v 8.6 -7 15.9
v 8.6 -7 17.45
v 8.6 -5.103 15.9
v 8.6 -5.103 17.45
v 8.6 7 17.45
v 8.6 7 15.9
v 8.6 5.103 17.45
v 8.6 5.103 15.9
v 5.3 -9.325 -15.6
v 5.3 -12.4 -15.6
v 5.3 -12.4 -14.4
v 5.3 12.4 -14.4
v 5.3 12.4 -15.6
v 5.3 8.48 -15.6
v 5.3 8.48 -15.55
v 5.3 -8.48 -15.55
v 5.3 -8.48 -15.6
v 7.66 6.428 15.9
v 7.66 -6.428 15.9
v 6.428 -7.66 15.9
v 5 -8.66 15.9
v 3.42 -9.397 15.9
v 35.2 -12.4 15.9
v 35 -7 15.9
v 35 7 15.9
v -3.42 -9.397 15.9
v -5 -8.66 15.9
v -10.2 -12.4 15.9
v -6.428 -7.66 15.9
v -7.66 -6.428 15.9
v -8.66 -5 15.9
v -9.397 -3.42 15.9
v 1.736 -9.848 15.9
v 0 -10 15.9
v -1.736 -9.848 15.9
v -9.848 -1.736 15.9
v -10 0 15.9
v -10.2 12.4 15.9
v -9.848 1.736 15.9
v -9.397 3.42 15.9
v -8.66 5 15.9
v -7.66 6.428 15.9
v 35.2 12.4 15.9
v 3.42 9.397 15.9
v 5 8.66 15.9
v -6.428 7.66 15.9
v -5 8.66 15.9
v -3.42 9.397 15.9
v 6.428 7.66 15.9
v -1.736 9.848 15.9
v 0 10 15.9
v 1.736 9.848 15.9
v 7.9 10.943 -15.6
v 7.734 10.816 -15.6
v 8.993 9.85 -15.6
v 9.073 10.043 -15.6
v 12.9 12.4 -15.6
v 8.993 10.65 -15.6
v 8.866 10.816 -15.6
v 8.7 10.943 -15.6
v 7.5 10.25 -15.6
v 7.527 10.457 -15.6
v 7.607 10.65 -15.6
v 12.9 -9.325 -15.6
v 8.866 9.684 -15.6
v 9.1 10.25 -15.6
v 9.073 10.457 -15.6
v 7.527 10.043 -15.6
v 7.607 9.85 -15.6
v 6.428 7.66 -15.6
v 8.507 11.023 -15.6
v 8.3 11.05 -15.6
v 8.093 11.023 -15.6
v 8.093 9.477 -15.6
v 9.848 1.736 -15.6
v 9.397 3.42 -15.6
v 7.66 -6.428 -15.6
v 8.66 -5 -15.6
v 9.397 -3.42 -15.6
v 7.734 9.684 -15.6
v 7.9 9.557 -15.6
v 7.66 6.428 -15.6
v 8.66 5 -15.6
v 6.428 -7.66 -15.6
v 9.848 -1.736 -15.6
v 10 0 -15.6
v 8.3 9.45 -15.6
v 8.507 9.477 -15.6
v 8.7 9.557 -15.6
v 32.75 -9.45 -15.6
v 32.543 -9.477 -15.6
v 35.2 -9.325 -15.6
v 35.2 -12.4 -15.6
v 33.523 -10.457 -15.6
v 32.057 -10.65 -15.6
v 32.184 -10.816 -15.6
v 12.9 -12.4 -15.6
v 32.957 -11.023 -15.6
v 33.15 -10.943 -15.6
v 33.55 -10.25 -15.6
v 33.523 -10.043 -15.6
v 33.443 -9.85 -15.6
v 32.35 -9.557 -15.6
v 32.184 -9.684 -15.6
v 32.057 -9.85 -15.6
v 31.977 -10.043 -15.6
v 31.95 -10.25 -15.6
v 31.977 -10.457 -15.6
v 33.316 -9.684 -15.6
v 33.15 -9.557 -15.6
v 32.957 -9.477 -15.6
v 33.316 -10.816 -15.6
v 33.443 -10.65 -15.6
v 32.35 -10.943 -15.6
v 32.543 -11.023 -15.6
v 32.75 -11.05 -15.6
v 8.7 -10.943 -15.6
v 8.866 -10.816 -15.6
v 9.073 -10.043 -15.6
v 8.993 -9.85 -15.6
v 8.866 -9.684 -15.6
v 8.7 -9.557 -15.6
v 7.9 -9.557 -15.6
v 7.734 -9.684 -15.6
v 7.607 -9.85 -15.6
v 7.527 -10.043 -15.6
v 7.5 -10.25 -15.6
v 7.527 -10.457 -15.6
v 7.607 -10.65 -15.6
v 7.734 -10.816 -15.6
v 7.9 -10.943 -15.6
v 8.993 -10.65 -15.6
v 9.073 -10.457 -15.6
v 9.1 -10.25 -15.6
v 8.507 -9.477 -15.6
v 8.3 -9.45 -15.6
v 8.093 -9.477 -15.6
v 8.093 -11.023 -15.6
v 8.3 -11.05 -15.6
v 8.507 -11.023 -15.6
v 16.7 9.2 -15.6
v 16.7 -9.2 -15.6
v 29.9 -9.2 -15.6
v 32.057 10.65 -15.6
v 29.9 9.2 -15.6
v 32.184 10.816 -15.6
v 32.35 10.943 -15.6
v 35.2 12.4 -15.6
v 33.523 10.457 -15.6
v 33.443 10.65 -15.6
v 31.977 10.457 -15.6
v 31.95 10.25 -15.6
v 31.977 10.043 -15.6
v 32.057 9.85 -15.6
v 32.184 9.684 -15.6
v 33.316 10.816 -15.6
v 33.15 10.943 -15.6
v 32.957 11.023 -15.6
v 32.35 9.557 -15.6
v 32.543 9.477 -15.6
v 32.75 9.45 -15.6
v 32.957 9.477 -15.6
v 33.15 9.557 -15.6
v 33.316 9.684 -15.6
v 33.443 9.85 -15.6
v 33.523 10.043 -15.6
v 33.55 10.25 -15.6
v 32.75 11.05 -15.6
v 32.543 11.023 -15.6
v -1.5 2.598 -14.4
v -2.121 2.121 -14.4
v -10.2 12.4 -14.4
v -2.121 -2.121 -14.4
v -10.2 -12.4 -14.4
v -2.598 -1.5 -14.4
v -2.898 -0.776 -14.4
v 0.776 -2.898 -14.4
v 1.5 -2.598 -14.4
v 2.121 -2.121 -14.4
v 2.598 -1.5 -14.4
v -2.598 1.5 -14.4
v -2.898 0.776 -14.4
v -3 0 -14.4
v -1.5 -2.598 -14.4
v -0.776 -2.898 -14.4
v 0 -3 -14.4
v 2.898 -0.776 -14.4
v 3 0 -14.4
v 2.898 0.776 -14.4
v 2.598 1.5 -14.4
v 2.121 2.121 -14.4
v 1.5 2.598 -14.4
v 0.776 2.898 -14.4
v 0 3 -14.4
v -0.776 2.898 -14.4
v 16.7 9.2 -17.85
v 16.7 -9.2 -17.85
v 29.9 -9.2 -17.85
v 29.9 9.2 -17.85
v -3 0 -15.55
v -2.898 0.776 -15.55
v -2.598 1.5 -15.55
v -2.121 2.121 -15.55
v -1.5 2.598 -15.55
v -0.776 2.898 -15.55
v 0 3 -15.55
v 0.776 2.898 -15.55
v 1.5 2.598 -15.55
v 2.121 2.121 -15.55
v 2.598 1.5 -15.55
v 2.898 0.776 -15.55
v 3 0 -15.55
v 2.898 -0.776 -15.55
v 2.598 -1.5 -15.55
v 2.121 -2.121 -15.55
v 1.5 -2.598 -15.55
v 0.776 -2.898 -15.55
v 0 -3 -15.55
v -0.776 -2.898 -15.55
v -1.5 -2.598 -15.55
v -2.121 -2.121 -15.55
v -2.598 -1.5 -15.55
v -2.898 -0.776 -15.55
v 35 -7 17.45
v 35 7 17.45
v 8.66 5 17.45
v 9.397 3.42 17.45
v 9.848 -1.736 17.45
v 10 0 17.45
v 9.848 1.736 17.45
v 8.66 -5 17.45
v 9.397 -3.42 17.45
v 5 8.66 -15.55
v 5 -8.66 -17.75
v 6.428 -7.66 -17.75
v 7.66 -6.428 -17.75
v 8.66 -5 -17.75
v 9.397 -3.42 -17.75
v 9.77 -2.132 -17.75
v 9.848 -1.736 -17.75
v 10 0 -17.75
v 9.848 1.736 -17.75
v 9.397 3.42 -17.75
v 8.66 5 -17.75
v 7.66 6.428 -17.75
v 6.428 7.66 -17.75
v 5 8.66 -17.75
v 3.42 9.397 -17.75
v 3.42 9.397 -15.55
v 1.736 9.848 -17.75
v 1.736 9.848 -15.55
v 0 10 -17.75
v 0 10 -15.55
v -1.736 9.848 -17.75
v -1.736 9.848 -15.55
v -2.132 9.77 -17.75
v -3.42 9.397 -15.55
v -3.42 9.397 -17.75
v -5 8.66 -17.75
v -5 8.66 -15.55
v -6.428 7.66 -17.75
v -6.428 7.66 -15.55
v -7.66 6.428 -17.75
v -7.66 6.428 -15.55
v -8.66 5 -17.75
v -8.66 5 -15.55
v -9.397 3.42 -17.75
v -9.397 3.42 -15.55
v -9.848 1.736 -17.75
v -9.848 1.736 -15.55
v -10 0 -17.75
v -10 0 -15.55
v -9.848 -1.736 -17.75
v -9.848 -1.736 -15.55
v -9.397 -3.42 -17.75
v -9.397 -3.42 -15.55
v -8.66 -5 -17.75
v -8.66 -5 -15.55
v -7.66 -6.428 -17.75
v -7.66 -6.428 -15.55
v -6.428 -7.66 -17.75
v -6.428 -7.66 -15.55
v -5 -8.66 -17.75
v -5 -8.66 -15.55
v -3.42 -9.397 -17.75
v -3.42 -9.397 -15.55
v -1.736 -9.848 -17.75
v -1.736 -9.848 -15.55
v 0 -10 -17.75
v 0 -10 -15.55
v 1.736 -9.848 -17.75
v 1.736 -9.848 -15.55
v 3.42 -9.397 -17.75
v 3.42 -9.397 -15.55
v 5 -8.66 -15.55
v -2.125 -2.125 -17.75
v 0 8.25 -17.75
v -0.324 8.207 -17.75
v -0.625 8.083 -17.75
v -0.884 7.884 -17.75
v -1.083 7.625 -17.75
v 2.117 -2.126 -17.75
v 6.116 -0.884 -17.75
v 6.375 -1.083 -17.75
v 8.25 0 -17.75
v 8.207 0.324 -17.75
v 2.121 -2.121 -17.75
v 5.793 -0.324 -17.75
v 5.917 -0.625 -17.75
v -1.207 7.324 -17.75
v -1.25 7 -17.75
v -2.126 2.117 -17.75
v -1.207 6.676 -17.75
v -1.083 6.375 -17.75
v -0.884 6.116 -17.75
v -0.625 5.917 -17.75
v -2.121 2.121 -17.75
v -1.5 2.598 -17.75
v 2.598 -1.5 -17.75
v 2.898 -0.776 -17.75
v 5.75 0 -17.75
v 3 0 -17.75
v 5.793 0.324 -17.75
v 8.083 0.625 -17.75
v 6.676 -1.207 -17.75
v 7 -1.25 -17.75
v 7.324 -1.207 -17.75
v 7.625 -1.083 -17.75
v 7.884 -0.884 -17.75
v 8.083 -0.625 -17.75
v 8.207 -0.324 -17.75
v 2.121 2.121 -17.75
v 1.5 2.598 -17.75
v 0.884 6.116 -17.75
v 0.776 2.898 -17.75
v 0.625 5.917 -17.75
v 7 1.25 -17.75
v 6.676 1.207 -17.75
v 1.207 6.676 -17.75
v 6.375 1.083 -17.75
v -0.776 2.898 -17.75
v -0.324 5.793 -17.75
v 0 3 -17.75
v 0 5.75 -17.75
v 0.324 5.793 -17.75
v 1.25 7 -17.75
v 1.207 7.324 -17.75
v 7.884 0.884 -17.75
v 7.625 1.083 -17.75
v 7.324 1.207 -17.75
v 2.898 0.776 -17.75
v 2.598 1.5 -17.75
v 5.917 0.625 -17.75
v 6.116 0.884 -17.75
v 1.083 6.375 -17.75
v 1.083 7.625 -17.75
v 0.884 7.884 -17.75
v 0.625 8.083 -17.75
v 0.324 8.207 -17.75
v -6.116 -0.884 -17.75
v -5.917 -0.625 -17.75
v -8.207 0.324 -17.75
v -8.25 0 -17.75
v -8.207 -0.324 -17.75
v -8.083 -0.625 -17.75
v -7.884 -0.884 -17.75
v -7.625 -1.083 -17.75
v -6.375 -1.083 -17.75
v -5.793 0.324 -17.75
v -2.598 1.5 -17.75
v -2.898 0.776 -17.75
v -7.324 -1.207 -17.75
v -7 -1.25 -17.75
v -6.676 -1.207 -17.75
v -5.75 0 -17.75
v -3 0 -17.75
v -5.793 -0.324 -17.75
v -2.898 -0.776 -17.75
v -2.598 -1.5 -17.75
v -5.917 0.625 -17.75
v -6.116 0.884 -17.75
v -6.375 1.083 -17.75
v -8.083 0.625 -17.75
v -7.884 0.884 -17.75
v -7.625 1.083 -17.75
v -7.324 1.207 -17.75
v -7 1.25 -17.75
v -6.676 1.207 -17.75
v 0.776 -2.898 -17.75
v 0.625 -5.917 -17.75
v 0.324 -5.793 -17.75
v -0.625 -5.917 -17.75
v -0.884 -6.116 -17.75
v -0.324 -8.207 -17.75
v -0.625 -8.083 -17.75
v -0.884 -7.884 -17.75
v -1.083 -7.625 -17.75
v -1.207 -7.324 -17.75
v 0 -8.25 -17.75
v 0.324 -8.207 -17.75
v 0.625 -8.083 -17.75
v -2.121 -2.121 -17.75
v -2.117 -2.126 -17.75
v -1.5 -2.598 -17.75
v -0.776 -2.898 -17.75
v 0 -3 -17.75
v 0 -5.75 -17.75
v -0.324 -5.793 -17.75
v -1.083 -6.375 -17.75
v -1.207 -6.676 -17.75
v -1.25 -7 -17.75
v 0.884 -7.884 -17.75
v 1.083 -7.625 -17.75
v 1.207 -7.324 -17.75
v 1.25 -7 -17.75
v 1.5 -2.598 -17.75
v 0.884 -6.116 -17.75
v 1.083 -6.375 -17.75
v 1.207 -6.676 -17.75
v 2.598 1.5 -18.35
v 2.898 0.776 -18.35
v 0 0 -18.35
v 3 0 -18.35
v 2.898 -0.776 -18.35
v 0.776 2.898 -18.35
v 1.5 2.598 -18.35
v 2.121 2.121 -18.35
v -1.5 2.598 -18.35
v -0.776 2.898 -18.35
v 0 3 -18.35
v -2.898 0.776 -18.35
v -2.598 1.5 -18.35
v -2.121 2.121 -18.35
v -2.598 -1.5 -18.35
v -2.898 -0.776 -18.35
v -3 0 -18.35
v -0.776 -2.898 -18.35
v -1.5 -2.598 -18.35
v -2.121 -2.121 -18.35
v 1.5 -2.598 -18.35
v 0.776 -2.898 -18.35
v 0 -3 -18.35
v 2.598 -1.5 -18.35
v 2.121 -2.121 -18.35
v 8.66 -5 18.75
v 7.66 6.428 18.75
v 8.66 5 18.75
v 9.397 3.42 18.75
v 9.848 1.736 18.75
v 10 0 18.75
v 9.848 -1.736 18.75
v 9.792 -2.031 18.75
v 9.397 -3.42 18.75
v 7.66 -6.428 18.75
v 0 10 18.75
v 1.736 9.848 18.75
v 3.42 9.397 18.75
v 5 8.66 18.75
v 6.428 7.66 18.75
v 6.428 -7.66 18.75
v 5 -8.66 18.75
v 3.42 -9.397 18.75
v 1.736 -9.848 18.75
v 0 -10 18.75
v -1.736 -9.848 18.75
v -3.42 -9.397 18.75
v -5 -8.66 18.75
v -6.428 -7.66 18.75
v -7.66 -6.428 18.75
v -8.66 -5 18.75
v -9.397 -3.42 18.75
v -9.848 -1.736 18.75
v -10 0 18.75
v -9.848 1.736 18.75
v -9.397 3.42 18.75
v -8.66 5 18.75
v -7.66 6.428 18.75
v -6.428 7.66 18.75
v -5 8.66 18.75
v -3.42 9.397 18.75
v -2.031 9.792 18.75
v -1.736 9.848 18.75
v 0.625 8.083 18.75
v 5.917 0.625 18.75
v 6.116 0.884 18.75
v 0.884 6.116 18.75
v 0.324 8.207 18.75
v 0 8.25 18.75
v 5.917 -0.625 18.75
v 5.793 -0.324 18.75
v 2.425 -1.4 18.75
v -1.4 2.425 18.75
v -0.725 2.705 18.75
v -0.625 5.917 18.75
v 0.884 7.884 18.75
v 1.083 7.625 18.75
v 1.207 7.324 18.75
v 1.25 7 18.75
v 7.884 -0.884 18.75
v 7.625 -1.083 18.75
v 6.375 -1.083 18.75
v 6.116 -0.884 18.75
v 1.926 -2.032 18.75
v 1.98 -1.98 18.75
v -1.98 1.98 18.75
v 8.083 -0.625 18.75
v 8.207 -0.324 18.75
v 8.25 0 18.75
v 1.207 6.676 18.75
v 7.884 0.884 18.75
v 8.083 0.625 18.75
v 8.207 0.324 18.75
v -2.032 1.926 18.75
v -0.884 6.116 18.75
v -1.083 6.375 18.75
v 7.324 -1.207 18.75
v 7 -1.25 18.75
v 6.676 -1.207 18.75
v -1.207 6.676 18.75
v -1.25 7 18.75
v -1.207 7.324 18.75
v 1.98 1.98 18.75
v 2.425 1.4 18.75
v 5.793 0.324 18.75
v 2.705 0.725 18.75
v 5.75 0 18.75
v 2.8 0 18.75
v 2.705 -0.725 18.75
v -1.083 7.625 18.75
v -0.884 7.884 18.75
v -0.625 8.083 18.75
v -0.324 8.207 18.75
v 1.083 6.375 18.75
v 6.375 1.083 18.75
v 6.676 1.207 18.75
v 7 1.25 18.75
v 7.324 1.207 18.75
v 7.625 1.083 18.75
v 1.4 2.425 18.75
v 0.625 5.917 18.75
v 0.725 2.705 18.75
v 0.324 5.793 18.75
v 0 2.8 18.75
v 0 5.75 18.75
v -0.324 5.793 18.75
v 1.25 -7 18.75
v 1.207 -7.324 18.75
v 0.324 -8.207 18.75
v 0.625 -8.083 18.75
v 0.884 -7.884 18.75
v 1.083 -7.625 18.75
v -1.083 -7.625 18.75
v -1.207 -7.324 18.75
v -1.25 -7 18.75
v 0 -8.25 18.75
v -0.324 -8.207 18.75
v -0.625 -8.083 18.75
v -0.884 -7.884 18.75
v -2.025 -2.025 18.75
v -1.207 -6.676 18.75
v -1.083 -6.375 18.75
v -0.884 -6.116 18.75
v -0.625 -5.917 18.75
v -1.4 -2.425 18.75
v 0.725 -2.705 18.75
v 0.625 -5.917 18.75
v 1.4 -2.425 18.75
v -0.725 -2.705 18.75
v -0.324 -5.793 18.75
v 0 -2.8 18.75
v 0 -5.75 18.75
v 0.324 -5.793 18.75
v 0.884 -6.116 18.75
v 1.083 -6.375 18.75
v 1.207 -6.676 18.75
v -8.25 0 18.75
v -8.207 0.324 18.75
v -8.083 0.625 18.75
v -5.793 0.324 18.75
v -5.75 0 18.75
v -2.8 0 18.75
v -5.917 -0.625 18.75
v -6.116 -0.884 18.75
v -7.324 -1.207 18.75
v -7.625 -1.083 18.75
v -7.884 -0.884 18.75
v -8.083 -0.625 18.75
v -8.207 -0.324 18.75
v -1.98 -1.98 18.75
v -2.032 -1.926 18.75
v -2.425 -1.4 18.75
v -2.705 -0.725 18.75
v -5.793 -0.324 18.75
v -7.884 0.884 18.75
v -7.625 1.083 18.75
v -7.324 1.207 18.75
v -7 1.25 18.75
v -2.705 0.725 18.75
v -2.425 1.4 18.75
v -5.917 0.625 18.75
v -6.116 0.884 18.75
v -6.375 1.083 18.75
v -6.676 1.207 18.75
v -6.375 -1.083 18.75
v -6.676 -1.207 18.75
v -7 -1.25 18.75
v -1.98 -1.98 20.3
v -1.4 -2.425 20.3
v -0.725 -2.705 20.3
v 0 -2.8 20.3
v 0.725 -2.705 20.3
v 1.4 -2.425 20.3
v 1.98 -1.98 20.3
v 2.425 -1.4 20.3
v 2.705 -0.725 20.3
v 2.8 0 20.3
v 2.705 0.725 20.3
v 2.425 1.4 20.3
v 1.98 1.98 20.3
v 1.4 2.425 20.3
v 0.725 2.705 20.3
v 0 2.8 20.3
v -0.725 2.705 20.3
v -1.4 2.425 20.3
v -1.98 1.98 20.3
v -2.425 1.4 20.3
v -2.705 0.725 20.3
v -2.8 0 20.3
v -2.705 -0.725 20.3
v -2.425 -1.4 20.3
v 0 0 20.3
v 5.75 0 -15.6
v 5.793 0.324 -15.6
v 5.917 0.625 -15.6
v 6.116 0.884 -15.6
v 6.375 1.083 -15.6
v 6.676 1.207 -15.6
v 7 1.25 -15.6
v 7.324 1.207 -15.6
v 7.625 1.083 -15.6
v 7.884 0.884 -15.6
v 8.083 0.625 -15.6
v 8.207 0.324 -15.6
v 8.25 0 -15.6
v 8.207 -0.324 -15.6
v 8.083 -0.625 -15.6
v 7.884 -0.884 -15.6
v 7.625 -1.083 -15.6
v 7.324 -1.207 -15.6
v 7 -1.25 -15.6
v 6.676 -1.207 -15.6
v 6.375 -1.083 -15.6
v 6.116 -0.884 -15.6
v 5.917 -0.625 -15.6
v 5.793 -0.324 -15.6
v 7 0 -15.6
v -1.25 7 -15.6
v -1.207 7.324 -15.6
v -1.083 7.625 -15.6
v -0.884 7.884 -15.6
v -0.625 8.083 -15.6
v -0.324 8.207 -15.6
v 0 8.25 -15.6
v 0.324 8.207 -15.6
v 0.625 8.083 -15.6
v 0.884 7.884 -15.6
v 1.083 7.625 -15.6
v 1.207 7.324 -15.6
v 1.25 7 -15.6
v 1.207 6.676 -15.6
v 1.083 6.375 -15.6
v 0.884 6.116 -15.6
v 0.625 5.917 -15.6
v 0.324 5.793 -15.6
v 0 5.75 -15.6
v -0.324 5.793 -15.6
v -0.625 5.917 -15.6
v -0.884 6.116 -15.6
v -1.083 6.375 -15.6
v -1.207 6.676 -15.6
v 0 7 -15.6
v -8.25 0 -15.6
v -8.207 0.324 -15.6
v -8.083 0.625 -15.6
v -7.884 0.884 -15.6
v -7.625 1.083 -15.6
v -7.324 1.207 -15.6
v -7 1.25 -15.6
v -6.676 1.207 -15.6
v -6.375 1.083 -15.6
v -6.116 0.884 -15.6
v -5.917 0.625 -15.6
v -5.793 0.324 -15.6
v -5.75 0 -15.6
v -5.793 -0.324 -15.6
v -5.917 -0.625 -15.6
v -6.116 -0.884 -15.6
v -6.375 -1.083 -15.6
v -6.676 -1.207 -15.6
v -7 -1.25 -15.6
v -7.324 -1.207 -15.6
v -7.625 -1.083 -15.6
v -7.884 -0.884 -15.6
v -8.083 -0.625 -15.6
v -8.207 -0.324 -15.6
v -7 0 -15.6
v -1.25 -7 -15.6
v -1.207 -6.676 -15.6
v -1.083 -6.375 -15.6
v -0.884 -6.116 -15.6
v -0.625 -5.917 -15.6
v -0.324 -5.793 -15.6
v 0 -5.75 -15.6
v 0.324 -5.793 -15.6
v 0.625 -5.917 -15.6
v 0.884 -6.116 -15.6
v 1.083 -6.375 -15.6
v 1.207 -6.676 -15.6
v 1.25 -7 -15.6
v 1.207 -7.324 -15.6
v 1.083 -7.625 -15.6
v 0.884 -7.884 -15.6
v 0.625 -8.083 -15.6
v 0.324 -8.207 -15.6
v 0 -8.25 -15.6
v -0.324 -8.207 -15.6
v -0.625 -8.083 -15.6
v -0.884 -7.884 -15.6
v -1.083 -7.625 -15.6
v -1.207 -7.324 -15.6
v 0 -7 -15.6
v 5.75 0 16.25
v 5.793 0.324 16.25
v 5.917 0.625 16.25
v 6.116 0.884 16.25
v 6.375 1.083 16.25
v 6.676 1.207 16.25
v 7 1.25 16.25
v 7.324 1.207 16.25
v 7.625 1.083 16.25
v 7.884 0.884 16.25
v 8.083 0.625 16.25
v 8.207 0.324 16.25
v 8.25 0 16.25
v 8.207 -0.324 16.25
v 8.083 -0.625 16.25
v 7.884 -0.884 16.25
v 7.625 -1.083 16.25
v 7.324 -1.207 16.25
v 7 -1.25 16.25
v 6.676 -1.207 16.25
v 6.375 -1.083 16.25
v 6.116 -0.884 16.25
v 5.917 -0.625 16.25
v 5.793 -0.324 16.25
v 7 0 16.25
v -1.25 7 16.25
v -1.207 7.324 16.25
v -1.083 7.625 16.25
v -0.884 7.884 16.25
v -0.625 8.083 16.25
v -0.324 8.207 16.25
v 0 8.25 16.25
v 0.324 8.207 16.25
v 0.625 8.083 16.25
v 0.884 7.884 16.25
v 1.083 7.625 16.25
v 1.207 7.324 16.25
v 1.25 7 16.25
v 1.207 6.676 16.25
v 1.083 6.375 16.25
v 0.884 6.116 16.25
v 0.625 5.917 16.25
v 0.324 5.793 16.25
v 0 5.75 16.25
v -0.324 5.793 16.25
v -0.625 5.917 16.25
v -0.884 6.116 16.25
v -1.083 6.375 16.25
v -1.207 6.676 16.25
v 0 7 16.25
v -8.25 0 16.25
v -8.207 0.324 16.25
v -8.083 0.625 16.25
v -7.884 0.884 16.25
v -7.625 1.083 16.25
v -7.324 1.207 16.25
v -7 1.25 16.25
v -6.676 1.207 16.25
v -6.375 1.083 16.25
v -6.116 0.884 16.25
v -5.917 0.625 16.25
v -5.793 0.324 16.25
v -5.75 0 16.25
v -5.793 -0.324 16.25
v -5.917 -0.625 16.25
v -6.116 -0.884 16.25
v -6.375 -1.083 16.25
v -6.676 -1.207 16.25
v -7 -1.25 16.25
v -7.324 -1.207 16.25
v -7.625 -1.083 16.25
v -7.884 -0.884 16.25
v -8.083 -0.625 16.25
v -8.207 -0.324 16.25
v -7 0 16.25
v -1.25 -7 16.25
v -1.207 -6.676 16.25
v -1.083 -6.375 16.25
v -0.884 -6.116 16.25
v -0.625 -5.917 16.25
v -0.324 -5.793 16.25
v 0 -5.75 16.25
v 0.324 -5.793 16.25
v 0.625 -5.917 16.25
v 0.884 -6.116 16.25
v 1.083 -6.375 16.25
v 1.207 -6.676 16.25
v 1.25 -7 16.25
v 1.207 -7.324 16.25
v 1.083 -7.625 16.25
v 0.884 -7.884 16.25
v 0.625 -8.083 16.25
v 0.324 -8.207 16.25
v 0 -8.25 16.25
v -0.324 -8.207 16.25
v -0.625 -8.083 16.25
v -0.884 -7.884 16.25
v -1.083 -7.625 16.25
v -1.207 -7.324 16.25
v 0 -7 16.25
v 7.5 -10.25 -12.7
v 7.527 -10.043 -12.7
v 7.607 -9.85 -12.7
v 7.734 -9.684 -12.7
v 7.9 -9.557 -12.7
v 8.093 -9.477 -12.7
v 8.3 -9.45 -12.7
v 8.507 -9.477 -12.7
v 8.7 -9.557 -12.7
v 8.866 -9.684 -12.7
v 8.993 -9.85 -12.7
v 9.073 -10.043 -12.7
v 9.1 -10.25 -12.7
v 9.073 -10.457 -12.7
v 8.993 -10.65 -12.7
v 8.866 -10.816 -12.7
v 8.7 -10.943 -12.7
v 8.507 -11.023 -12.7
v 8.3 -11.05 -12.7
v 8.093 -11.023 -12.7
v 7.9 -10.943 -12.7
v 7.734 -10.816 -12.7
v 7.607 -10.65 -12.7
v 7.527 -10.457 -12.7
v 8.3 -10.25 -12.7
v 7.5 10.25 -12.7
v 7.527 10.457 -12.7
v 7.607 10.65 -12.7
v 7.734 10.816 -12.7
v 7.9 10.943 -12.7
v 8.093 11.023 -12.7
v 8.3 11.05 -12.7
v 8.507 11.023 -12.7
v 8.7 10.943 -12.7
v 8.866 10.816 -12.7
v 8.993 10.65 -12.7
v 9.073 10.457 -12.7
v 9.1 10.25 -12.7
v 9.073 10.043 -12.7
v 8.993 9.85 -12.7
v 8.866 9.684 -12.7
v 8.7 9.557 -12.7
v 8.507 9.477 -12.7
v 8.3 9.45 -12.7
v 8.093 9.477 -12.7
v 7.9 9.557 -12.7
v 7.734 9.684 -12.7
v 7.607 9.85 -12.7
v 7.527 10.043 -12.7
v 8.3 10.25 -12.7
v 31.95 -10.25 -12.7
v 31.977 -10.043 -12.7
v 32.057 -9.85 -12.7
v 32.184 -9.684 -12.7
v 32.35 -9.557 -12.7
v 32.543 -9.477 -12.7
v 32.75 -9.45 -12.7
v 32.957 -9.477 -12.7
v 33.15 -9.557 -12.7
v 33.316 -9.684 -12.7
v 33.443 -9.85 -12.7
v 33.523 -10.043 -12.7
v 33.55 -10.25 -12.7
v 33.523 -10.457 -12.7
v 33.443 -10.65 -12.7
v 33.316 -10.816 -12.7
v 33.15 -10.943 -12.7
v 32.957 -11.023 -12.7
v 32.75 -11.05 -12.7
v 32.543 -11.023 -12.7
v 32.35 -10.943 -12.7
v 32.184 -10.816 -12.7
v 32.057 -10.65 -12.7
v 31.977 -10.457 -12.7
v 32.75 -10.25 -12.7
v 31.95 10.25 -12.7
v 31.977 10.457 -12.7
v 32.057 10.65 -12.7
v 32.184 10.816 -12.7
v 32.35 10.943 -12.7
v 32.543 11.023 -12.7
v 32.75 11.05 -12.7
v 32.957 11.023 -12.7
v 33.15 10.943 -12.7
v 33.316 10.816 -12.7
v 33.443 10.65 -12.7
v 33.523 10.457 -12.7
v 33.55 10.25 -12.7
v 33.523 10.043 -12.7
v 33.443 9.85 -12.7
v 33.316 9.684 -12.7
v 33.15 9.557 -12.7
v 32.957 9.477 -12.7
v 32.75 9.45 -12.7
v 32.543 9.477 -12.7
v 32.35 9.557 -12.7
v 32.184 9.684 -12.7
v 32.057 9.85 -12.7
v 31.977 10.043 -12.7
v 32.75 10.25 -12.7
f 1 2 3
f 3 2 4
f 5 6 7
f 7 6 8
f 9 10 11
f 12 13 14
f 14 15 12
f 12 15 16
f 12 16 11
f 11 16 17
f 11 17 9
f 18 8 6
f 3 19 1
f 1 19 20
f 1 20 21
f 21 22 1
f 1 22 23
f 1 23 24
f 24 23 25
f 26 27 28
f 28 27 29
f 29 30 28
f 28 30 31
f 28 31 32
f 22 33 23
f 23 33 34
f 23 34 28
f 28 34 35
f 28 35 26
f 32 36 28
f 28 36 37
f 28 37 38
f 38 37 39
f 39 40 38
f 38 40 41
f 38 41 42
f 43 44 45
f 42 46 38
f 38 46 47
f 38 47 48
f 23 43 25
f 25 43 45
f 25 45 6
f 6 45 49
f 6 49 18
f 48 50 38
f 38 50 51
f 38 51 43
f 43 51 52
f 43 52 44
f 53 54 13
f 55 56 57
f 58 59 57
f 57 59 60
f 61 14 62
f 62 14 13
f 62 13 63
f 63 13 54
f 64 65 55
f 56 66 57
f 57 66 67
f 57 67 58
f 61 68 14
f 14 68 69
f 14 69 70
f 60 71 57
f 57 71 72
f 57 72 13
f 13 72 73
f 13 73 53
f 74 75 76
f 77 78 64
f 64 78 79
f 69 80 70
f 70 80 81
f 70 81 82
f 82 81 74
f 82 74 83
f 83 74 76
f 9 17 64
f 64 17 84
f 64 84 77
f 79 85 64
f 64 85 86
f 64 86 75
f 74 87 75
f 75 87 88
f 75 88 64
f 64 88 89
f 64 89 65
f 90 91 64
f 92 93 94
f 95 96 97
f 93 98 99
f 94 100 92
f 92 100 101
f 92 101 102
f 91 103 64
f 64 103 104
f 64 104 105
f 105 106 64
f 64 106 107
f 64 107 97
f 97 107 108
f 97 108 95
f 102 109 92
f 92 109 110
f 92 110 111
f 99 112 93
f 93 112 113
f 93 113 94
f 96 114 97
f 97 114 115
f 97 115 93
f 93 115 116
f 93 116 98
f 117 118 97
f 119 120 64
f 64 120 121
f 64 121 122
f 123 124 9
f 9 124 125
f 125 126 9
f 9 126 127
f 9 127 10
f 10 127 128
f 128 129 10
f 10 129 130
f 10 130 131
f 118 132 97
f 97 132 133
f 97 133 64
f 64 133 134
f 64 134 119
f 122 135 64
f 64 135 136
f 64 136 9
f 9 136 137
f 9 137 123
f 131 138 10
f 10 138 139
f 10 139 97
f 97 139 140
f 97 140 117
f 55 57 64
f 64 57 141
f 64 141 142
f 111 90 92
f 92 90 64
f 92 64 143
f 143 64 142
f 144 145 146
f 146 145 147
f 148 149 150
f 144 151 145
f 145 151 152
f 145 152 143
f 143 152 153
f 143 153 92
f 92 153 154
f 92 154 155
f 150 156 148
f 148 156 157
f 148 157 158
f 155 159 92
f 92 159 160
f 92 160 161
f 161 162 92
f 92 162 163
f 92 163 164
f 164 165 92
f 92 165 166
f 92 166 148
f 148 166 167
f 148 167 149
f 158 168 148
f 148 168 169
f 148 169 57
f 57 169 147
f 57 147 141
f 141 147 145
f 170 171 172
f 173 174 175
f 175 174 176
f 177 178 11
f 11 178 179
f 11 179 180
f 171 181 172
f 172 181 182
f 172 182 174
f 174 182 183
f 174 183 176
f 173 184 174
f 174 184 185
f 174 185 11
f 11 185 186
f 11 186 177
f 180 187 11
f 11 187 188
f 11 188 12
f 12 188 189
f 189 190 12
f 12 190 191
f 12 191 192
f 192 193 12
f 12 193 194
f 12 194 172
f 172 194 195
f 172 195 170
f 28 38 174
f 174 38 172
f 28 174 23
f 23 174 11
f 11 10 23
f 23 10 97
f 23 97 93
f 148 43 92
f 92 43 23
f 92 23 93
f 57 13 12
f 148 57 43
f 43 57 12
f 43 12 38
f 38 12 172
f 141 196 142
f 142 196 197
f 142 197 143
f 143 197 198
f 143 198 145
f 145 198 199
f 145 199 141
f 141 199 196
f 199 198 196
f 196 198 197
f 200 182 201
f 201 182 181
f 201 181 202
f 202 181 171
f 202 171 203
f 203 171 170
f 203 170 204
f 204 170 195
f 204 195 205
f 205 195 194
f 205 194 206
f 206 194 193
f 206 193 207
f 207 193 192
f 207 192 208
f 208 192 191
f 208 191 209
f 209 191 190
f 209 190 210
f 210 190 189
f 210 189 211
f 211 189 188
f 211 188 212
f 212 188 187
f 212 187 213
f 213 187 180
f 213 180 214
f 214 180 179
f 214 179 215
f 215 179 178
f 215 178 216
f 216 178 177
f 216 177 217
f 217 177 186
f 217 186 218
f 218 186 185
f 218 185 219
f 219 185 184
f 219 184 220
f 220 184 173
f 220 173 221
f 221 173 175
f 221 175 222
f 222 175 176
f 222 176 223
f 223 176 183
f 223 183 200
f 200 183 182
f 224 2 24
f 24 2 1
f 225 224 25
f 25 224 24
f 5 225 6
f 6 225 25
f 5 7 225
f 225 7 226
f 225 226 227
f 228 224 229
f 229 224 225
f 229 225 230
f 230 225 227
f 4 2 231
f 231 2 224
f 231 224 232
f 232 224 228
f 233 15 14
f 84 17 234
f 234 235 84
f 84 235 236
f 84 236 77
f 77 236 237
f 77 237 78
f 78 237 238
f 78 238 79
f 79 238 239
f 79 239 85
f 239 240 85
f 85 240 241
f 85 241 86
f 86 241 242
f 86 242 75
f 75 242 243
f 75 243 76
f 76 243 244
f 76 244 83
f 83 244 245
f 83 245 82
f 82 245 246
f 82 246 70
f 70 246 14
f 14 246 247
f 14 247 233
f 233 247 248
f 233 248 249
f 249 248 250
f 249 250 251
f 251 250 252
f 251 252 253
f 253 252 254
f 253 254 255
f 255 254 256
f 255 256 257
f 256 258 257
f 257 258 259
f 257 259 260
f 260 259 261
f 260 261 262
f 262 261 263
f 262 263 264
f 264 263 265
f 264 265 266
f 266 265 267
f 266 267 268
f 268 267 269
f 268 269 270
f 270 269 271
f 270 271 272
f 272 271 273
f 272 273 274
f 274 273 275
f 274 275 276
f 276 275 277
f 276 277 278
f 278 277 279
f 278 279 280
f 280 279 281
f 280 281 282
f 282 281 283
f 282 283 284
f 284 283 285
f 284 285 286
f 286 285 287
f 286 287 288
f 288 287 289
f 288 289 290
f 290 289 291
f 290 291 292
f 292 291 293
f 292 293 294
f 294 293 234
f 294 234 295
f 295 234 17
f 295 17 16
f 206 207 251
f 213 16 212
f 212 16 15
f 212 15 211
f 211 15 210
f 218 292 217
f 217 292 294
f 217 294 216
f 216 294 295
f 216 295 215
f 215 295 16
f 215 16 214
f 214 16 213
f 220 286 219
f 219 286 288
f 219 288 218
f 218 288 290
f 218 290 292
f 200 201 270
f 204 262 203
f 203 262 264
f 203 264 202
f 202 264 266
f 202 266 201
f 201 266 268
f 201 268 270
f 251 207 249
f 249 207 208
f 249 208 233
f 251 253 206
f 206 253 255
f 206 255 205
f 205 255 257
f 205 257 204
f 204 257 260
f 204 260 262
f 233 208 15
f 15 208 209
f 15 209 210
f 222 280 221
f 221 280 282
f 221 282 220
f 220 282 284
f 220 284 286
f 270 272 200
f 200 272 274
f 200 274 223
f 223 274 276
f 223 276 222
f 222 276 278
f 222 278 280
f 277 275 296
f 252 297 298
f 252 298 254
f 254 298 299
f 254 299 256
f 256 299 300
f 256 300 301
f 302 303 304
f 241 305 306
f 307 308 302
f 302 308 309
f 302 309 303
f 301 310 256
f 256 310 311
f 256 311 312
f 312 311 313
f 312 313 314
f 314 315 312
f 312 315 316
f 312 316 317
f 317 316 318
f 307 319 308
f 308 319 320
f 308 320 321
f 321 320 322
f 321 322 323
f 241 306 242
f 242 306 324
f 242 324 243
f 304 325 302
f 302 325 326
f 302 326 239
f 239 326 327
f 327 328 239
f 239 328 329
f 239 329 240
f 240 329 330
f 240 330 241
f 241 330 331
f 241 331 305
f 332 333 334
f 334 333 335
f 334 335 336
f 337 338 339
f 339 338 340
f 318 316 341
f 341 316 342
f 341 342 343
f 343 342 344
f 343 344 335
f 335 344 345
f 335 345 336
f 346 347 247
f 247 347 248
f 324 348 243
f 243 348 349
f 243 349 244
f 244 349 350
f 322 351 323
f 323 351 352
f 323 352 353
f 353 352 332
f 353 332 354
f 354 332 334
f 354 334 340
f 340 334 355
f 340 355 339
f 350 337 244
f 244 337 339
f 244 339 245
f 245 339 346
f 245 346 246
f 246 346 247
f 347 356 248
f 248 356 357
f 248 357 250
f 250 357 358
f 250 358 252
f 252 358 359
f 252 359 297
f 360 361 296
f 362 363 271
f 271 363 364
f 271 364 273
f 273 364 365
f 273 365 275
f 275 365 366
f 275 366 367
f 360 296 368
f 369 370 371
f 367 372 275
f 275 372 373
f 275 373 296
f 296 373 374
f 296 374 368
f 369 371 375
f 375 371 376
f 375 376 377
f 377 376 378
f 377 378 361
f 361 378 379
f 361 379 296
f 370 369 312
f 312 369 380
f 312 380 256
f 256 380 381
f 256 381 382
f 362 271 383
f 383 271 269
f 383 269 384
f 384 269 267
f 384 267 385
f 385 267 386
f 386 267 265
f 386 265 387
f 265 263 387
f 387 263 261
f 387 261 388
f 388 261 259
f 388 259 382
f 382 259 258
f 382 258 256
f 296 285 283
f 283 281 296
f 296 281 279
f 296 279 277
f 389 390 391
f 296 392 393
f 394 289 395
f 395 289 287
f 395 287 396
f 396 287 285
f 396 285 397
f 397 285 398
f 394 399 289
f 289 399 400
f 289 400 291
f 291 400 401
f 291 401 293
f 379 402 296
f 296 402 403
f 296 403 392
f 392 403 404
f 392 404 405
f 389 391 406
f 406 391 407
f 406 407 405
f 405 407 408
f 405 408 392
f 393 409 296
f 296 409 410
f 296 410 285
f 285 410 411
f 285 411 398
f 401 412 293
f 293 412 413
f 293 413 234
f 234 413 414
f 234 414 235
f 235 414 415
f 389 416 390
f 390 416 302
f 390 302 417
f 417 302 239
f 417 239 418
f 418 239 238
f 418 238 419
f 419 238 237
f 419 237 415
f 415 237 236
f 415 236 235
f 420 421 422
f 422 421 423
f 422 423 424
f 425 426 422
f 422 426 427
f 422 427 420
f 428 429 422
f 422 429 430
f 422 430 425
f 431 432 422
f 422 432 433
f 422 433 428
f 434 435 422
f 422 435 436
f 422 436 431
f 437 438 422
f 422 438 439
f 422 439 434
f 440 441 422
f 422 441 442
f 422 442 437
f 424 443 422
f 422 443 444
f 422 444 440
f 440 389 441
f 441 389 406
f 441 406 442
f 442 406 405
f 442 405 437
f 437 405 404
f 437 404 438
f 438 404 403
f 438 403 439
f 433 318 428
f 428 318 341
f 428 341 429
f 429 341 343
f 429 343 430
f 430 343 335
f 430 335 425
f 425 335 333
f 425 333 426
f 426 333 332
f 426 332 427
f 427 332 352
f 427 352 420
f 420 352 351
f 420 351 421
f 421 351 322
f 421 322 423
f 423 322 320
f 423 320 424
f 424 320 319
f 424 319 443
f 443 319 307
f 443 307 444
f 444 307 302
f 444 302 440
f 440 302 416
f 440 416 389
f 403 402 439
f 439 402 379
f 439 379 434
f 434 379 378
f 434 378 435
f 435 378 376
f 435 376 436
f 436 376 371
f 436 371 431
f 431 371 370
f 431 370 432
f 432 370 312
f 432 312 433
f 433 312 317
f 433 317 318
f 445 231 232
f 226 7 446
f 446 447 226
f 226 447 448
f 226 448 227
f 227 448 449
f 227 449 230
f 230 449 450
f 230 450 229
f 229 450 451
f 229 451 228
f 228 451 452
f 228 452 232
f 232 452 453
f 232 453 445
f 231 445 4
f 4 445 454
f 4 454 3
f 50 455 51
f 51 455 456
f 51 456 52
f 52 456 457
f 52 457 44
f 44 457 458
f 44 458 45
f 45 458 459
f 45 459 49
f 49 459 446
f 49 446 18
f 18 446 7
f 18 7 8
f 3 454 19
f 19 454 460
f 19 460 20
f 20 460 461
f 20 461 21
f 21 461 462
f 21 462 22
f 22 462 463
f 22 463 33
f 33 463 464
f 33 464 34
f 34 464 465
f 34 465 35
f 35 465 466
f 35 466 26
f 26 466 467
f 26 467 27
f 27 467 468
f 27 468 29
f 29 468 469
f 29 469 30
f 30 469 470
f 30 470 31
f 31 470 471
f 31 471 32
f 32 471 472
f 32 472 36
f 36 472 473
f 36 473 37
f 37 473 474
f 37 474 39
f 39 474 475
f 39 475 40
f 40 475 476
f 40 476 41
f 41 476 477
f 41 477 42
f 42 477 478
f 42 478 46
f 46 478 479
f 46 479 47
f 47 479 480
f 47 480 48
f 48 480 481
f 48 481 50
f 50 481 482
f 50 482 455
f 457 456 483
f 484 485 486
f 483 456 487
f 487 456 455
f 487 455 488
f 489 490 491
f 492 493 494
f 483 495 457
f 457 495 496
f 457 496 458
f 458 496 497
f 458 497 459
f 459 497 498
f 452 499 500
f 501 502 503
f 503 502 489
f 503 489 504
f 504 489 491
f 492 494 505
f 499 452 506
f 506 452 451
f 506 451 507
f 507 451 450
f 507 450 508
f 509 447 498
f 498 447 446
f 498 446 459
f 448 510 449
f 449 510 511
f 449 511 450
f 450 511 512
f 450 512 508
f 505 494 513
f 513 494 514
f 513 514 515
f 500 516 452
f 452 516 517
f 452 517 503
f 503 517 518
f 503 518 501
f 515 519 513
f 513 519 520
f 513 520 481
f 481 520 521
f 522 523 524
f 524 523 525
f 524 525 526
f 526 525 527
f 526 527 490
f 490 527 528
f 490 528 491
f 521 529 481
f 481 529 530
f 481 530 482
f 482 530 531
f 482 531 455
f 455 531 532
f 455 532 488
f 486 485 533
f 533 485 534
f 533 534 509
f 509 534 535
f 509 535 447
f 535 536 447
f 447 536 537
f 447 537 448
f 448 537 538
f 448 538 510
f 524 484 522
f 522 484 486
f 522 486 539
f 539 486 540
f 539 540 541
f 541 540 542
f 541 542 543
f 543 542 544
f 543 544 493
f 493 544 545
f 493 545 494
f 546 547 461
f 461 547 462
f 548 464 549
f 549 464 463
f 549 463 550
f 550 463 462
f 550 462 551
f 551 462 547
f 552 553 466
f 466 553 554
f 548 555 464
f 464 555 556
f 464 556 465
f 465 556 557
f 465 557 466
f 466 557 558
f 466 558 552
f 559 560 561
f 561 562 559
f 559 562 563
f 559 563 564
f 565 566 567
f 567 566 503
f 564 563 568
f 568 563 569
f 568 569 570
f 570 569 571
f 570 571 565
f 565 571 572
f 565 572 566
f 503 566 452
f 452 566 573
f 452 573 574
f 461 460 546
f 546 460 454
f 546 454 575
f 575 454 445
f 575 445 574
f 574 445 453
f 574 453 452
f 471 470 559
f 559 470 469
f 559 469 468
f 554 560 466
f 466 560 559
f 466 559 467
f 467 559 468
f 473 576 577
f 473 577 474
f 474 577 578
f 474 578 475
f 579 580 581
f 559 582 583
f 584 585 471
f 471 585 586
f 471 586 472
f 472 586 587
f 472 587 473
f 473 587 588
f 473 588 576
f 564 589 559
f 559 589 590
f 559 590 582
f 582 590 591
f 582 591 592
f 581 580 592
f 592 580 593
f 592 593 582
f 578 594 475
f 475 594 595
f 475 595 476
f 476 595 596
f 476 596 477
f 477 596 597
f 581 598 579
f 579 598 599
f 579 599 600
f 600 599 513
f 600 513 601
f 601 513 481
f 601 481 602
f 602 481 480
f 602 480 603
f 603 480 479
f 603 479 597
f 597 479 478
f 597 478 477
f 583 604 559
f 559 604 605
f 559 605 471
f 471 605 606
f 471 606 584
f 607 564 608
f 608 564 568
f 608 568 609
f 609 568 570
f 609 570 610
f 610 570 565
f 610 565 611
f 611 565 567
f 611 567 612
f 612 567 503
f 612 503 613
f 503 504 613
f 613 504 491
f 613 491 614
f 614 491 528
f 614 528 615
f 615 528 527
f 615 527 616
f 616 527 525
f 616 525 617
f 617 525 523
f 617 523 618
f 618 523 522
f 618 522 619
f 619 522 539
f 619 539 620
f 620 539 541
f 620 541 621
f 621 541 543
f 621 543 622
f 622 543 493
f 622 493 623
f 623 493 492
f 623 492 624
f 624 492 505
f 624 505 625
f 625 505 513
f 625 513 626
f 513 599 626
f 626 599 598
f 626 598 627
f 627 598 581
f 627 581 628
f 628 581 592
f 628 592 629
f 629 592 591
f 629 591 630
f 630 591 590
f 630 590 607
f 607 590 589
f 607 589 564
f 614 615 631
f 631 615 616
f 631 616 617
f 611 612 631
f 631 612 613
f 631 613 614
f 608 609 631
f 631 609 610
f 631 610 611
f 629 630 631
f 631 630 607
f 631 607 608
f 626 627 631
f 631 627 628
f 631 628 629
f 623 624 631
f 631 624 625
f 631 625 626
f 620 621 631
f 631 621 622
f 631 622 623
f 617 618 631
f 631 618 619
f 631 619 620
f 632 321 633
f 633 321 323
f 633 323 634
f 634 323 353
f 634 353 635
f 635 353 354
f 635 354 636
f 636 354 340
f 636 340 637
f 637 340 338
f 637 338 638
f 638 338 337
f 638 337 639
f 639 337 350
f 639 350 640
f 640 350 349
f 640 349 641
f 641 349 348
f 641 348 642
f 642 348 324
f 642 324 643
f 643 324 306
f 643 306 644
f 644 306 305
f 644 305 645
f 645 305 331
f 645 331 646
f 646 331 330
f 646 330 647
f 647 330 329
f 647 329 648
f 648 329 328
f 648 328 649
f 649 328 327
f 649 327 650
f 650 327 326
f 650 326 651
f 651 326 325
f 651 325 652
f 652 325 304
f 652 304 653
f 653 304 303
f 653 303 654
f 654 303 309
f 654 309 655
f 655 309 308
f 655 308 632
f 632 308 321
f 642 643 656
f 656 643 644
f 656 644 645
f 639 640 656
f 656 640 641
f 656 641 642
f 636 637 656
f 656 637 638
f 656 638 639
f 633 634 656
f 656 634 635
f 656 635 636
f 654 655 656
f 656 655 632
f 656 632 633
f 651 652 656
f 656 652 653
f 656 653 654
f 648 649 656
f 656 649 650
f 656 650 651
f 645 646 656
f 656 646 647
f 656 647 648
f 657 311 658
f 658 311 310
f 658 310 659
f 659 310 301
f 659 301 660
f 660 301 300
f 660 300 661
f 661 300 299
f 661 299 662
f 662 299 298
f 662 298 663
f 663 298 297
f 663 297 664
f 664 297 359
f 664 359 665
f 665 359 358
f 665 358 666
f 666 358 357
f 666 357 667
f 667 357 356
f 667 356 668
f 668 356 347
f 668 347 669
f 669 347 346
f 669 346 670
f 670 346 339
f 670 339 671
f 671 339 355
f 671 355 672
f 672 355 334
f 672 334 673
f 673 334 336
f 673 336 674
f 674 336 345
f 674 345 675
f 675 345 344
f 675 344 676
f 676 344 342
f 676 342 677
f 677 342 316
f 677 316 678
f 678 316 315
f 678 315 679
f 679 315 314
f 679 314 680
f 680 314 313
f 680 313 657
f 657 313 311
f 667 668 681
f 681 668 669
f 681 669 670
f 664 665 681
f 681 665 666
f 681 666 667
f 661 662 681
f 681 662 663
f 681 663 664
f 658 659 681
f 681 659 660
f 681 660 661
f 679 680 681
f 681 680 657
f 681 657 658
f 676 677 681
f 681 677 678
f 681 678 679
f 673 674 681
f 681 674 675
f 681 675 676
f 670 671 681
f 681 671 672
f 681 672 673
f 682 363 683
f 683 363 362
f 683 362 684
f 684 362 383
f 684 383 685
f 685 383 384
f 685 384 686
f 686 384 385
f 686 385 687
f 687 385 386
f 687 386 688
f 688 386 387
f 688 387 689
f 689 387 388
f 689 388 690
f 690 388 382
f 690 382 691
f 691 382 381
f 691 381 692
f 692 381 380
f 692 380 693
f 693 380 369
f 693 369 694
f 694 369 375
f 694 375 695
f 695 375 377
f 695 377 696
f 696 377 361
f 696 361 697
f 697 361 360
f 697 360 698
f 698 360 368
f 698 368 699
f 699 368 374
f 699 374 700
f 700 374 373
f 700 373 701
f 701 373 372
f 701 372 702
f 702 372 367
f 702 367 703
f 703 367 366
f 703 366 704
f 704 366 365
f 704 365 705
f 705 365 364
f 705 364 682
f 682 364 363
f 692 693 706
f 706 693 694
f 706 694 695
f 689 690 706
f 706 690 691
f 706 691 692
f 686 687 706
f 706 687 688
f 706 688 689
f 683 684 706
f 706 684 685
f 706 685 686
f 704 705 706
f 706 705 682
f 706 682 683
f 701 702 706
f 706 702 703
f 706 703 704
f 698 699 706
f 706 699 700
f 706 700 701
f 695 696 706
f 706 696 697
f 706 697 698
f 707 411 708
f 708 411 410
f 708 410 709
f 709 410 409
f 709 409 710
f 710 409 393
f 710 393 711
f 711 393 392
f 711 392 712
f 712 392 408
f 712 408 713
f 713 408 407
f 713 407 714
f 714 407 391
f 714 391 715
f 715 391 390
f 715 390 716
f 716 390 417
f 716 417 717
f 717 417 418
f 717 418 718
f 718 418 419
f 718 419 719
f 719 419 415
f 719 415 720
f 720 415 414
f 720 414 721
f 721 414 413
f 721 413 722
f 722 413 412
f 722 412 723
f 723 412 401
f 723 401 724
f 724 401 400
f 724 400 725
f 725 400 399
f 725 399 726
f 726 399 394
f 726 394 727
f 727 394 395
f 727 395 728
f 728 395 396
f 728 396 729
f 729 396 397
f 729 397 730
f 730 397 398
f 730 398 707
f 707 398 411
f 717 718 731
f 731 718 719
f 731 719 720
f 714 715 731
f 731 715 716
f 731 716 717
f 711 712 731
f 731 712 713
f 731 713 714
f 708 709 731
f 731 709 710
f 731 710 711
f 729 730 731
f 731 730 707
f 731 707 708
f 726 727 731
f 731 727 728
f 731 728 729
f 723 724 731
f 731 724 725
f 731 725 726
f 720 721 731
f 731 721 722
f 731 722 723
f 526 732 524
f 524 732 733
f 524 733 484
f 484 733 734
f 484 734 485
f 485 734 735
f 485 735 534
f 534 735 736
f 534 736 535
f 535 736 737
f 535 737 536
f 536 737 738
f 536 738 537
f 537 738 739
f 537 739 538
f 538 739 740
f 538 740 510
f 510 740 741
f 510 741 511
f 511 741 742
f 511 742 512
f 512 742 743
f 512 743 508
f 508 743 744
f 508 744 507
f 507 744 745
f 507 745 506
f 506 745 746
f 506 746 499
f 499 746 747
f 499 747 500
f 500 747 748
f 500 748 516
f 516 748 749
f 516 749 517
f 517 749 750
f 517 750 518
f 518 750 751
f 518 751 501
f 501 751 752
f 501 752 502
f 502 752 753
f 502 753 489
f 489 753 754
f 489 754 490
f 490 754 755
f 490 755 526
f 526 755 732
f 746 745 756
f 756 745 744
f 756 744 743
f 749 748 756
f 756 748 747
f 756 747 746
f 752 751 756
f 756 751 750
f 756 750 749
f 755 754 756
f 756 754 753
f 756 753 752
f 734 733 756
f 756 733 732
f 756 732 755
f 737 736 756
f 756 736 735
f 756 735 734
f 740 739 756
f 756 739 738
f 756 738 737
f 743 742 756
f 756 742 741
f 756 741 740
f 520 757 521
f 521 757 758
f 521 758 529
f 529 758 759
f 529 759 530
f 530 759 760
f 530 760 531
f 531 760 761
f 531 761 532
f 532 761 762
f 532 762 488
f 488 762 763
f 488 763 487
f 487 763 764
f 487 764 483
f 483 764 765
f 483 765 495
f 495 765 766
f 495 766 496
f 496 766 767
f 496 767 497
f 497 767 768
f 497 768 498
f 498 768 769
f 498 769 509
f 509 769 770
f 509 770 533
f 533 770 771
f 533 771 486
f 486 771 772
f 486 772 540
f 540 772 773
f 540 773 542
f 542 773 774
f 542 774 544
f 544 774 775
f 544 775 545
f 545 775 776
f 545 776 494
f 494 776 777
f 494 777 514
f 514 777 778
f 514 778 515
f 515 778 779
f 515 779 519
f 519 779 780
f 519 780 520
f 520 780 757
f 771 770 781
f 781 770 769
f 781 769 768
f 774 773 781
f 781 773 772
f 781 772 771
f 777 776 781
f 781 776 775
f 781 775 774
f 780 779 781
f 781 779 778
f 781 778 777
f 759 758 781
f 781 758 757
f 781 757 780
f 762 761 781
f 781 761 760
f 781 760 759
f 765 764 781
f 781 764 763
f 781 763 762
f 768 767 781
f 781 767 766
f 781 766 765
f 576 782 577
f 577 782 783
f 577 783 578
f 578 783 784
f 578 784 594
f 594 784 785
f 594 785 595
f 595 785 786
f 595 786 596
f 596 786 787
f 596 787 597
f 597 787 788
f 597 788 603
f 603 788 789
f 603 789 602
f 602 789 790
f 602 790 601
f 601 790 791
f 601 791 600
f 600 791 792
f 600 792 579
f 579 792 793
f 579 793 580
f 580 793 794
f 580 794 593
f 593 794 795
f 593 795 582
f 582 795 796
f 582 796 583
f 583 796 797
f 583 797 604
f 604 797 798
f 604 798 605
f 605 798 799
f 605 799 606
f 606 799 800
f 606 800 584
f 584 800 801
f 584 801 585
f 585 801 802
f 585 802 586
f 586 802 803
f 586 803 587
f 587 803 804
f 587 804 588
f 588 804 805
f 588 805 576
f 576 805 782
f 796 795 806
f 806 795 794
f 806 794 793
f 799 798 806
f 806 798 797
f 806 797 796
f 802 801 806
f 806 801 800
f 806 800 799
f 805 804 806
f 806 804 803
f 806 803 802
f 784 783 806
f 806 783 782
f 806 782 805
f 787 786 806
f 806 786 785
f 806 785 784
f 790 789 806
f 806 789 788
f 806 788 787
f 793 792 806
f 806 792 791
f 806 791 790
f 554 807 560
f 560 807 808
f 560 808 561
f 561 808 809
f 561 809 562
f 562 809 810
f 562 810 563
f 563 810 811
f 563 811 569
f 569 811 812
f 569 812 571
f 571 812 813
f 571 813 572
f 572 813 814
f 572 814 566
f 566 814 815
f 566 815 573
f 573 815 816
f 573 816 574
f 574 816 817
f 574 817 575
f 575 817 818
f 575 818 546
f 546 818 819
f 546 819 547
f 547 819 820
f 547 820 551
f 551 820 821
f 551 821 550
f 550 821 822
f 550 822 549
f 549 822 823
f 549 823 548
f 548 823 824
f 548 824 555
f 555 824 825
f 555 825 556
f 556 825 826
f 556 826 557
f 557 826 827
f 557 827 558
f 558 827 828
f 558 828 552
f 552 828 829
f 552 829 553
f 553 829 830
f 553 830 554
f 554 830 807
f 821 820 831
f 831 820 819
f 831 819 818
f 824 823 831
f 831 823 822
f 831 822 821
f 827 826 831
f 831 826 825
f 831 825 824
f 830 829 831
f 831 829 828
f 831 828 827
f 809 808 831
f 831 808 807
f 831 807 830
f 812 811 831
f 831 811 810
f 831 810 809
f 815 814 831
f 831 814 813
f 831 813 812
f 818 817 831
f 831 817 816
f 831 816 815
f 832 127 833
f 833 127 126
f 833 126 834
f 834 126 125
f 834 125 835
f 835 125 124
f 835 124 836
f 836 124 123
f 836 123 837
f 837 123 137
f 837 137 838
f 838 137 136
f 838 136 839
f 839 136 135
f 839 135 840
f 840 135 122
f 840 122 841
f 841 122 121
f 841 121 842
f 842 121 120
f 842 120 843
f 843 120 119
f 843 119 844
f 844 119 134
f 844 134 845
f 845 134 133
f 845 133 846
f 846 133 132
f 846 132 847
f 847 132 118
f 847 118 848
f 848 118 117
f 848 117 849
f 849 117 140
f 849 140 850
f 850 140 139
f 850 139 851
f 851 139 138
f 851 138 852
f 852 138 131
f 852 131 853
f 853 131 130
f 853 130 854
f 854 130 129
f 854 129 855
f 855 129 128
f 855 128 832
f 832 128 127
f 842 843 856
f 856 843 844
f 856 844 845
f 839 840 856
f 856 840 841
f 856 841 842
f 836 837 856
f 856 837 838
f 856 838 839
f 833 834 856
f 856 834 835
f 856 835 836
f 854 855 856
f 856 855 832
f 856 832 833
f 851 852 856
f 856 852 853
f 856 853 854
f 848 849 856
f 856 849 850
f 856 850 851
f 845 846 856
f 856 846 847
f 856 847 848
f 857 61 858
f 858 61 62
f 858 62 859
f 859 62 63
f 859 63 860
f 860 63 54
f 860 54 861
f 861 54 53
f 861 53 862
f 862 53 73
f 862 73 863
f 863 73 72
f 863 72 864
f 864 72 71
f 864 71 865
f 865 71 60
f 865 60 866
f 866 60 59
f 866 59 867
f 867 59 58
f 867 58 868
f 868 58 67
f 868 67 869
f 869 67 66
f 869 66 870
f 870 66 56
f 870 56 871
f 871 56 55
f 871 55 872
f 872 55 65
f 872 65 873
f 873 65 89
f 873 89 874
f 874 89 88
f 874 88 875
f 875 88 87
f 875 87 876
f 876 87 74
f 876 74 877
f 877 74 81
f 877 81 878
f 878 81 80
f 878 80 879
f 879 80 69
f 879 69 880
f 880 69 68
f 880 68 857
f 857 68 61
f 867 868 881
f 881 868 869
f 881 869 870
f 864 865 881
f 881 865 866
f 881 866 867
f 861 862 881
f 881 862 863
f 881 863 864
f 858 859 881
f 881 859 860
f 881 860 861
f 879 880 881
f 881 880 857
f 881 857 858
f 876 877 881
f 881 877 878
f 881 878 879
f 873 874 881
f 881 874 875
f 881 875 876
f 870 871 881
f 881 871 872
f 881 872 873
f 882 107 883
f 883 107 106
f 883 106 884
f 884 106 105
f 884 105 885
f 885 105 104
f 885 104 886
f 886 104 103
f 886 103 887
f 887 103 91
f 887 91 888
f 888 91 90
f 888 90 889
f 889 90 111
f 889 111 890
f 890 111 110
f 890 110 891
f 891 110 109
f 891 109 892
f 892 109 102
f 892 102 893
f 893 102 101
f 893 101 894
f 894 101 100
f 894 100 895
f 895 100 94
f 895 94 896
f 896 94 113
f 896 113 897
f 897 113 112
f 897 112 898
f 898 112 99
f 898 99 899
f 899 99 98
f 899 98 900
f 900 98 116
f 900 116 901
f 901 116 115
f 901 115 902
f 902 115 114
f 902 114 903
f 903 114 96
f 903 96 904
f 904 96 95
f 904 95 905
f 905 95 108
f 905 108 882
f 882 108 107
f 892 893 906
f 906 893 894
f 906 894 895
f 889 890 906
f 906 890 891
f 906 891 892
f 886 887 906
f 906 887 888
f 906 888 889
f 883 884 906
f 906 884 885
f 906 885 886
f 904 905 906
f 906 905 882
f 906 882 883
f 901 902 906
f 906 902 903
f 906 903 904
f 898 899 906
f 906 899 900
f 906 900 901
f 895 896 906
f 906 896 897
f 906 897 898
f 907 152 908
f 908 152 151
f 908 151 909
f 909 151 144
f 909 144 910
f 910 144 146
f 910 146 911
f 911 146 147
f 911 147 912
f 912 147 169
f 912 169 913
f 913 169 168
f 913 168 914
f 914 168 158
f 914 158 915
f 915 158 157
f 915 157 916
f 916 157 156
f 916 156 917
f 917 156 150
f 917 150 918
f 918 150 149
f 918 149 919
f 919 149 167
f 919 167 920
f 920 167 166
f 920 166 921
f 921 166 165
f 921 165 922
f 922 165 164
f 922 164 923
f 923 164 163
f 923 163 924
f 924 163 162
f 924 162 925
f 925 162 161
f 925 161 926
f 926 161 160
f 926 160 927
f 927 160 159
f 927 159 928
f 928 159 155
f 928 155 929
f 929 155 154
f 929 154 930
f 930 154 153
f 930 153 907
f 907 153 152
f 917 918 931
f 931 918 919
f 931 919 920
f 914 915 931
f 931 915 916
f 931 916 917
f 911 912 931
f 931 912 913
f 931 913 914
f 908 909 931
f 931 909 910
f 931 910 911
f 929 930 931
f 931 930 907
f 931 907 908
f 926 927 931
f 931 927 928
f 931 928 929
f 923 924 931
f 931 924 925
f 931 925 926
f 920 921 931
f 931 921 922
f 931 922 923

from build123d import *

# Parameters (mm, degrees)
S_BOX1_W      = 45.4
S_BOX1_H      = 24.8
BOSS_1_DEPTH  = 30.3
S_BOX2_W      = 29.9
S_BOX2_H      = 24.8
BOSS_2_DEPTH  = 1.3
S_BOX3_W      = 13.2
S_BOX3_H      = 18.4
BOSS_3_DEPTH  = 2.35
S_CYL4_R      = 3
BOSS_4_DEPTH  = 4.05
S_BOX5_W      = 26.4
S_BOX5_H      = 14
BOSS_5_DEPTH  = 1.65
S_CYL6_R      = 5.3
BOSS_6_DEPTH  = 0.6
S_CYL7_R      = 10
BOSS_7_DEPTH  = 2.2
S_CYL8_R      = 10
BOSS_8_DEPTH  = 2.95
S_CYL9_R      = 2.8
BOSS_9_DEPTH  = 1.65
S_HOLE10_R    = 1.25
HOLE_10_DEPTH = 2.25
S_HOLE11_R    = 1.25
HOLE_11_DEPTH = 2.25
S_HOLE12_R    = 1.25
HOLE_12_DEPTH = 2.25
S_HOLE13_R    = 1.25
HOLE_13_DEPTH = 2.25
S_HOLE14_R    = 1.25
HOLE_14_DEPTH = 2.6
S_HOLE15_R    = 1.25
HOLE_15_DEPTH = 2.6
S_HOLE16_R    = 1.25
HOLE_16_DEPTH = 2.6
S_HOLE17_R    = 1.25
HOLE_17_DEPTH = 2.6
S_HOLE18_R    = 0.8
HOLE_18_DEPTH = 3
S_HOLE19_R    = 0.8
HOLE_19_DEPTH = 3
S_HOLE20_R    = 0.8
HOLE_20_DEPTH = 3
S_HOLE21_R    = 0.8
HOLE_21_DEPTH = 3


with BuildPart() as part:
    # S_box1 → Boss_1 (new body)
    with BuildSketch(Plane.XY.offset(-14.4)):
        with Locations((12.5, 0)):
            Rectangle(S_BOX1_W, S_BOX1_H)
    extrude(amount=BOSS_1_DEPTH)

    # S_box2 → Boss_2 (add)
    with BuildSketch(Plane.XY.offset(-15.6)):
        with Locations((20.25, 0)):
            Rectangle(S_BOX2_W, S_BOX2_H)
    extrude(amount=BOSS_2_DEPTH)

    # S_box3 → Boss_3 (add)
    with BuildSketch(Plane.XY.offset(-17.85)):
        with Locations((23.3, 0)):
            Rectangle(S_BOX3_W, S_BOX3_H)
    extrude(amount=BOSS_3_DEPTH)

    # S_cyl4 → Boss_4 (add)
    with BuildSketch(Plane.XY.offset(-18.35)):
        Circle(S_CYL4_R)
    extrude(amount=BOSS_4_DEPTH)

    # S_box5 → Boss_5 (add)
    with BuildSketch(Plane.XY.offset(15.8)):
        with Locations((21.8, 0)):
            Rectangle(S_BOX5_W, S_BOX5_H)
    extrude(amount=BOSS_5_DEPTH)

    # S_cyl6 → Boss_6 (add)
    with BuildSketch(Plane.XY.offset(15.8)):
        with Locations(Location((0, 0, 0), (0, 0, 180))):
            Circle(S_CYL6_R)
    extrude(amount=BOSS_6_DEPTH)

    # S_cyl7 → Boss_7 (add)
    with BuildSketch(Plane.XY.offset(-17.75)):
        with Locations(Location((0, 0, 0), (0, 0, 302.005454828))):
            Circle(S_CYL7_R)
    extrude(amount=BOSS_7_DEPTH)

    # S_cyl8 → Boss_8 (add)
    with BuildSketch(Plane.XY.offset(15.8)):
        with Locations(Location((0, 0, 0), (0, 0, 302.005454828))):
            Circle(S_CYL8_R)
    extrude(amount=BOSS_8_DEPTH)

    # S_cyl9 → Boss_9 (add)
    with BuildSketch(Plane.XY.offset(18.65)):
        Circle(S_CYL9_R)
    extrude(amount=BOSS_9_DEPTH)

    # S_hole10 → Hole_10 (cut)
    with BuildSketch(Plane.XY.offset(-17.85)):
        with Locations((7, 0)):
            Circle(S_HOLE10_R)
    extrude(amount=HOLE_10_DEPTH, mode=Mode.SUBTRACT)

    # S_hole11 → Hole_11 (cut)
    with BuildSketch(Plane.XY.offset(-17.85)):
        with Locations((0, 7)):
            Circle(S_HOLE11_R)
    extrude(amount=HOLE_11_DEPTH, mode=Mode.SUBTRACT)

    # S_hole12 → Hole_12 (cut)
    with BuildSketch(Plane.XY.offset(-17.85)):
        with Locations((-7, 0)):
            Circle(S_HOLE12_R)
    extrude(amount=HOLE_12_DEPTH, mode=Mode.SUBTRACT)

    # S_hole13 → Hole_13 (cut)
    with BuildSketch(Plane.XY.offset(-17.85)):
        with Locations((0, -7)):
            Circle(S_HOLE13_R)
    extrude(amount=HOLE_13_DEPTH, mode=Mode.SUBTRACT)

    # S_hole14 → Hole_14 (cut)
    with BuildSketch(Plane.XY.offset(16.25)):
        with Locations((7, 0)):
            Circle(S_HOLE14_R)
    extrude(amount=HOLE_14_DEPTH, mode=Mode.SUBTRACT)

    # S_hole15 → Hole_15 (cut)
    with BuildSketch(Plane.XY.offset(16.25)):
        with Locations((0, 7)):
            Circle(S_HOLE15_R)
    extrude(amount=HOLE_15_DEPTH, mode=Mode.SUBTRACT)

    # S_hole16 → Hole_16 (cut)
    with BuildSketch(Plane.XY.offset(16.25)):
        with Locations((-7, 0)):
            Circle(S_HOLE16_R)
    extrude(amount=HOLE_16_DEPTH, mode=Mode.SUBTRACT)

    # S_hole17 → Hole_17 (cut)
    with BuildSketch(Plane.XY.offset(16.25)):
        with Locations((0, -7)):
            Circle(S_HOLE17_R)
    extrude(amount=HOLE_17_DEPTH, mode=Mode.SUBTRACT)

    # S_hole18 → Hole_18 (cut)
    with BuildSketch(Plane.XY.offset(-15.7)):
        with Locations((8.3, -10.25)):
            Circle(S_HOLE18_R)
    extrude(amount=HOLE_18_DEPTH, mode=Mode.SUBTRACT)

    # S_hole19 → Hole_19 (cut)
    with BuildSketch(Plane.XY.offset(-15.7)):
        with Locations((8.3, 10.25)):
            Circle(S_HOLE19_R)
    extrude(amount=HOLE_19_DEPTH, mode=Mode.SUBTRACT)

    # S_hole20 → Hole_20 (cut)
    with BuildSketch(Plane.XY.offset(-15.7)):
        with Locations((32.75, -10.25)):
            Circle(S_HOLE20_R)
    extrude(amount=HOLE_20_DEPTH, mode=Mode.SUBTRACT)

    # S_hole21 → Hole_21 (cut)
    with BuildSketch(Plane.XY.offset(-15.7)):
        with Locations((32.75, 10.25)):
            Circle(S_HOLE21_R)
    extrude(amount=HOLE_21_DEPTH, mode=Mode.SUBTRACT)


solid = part.part
